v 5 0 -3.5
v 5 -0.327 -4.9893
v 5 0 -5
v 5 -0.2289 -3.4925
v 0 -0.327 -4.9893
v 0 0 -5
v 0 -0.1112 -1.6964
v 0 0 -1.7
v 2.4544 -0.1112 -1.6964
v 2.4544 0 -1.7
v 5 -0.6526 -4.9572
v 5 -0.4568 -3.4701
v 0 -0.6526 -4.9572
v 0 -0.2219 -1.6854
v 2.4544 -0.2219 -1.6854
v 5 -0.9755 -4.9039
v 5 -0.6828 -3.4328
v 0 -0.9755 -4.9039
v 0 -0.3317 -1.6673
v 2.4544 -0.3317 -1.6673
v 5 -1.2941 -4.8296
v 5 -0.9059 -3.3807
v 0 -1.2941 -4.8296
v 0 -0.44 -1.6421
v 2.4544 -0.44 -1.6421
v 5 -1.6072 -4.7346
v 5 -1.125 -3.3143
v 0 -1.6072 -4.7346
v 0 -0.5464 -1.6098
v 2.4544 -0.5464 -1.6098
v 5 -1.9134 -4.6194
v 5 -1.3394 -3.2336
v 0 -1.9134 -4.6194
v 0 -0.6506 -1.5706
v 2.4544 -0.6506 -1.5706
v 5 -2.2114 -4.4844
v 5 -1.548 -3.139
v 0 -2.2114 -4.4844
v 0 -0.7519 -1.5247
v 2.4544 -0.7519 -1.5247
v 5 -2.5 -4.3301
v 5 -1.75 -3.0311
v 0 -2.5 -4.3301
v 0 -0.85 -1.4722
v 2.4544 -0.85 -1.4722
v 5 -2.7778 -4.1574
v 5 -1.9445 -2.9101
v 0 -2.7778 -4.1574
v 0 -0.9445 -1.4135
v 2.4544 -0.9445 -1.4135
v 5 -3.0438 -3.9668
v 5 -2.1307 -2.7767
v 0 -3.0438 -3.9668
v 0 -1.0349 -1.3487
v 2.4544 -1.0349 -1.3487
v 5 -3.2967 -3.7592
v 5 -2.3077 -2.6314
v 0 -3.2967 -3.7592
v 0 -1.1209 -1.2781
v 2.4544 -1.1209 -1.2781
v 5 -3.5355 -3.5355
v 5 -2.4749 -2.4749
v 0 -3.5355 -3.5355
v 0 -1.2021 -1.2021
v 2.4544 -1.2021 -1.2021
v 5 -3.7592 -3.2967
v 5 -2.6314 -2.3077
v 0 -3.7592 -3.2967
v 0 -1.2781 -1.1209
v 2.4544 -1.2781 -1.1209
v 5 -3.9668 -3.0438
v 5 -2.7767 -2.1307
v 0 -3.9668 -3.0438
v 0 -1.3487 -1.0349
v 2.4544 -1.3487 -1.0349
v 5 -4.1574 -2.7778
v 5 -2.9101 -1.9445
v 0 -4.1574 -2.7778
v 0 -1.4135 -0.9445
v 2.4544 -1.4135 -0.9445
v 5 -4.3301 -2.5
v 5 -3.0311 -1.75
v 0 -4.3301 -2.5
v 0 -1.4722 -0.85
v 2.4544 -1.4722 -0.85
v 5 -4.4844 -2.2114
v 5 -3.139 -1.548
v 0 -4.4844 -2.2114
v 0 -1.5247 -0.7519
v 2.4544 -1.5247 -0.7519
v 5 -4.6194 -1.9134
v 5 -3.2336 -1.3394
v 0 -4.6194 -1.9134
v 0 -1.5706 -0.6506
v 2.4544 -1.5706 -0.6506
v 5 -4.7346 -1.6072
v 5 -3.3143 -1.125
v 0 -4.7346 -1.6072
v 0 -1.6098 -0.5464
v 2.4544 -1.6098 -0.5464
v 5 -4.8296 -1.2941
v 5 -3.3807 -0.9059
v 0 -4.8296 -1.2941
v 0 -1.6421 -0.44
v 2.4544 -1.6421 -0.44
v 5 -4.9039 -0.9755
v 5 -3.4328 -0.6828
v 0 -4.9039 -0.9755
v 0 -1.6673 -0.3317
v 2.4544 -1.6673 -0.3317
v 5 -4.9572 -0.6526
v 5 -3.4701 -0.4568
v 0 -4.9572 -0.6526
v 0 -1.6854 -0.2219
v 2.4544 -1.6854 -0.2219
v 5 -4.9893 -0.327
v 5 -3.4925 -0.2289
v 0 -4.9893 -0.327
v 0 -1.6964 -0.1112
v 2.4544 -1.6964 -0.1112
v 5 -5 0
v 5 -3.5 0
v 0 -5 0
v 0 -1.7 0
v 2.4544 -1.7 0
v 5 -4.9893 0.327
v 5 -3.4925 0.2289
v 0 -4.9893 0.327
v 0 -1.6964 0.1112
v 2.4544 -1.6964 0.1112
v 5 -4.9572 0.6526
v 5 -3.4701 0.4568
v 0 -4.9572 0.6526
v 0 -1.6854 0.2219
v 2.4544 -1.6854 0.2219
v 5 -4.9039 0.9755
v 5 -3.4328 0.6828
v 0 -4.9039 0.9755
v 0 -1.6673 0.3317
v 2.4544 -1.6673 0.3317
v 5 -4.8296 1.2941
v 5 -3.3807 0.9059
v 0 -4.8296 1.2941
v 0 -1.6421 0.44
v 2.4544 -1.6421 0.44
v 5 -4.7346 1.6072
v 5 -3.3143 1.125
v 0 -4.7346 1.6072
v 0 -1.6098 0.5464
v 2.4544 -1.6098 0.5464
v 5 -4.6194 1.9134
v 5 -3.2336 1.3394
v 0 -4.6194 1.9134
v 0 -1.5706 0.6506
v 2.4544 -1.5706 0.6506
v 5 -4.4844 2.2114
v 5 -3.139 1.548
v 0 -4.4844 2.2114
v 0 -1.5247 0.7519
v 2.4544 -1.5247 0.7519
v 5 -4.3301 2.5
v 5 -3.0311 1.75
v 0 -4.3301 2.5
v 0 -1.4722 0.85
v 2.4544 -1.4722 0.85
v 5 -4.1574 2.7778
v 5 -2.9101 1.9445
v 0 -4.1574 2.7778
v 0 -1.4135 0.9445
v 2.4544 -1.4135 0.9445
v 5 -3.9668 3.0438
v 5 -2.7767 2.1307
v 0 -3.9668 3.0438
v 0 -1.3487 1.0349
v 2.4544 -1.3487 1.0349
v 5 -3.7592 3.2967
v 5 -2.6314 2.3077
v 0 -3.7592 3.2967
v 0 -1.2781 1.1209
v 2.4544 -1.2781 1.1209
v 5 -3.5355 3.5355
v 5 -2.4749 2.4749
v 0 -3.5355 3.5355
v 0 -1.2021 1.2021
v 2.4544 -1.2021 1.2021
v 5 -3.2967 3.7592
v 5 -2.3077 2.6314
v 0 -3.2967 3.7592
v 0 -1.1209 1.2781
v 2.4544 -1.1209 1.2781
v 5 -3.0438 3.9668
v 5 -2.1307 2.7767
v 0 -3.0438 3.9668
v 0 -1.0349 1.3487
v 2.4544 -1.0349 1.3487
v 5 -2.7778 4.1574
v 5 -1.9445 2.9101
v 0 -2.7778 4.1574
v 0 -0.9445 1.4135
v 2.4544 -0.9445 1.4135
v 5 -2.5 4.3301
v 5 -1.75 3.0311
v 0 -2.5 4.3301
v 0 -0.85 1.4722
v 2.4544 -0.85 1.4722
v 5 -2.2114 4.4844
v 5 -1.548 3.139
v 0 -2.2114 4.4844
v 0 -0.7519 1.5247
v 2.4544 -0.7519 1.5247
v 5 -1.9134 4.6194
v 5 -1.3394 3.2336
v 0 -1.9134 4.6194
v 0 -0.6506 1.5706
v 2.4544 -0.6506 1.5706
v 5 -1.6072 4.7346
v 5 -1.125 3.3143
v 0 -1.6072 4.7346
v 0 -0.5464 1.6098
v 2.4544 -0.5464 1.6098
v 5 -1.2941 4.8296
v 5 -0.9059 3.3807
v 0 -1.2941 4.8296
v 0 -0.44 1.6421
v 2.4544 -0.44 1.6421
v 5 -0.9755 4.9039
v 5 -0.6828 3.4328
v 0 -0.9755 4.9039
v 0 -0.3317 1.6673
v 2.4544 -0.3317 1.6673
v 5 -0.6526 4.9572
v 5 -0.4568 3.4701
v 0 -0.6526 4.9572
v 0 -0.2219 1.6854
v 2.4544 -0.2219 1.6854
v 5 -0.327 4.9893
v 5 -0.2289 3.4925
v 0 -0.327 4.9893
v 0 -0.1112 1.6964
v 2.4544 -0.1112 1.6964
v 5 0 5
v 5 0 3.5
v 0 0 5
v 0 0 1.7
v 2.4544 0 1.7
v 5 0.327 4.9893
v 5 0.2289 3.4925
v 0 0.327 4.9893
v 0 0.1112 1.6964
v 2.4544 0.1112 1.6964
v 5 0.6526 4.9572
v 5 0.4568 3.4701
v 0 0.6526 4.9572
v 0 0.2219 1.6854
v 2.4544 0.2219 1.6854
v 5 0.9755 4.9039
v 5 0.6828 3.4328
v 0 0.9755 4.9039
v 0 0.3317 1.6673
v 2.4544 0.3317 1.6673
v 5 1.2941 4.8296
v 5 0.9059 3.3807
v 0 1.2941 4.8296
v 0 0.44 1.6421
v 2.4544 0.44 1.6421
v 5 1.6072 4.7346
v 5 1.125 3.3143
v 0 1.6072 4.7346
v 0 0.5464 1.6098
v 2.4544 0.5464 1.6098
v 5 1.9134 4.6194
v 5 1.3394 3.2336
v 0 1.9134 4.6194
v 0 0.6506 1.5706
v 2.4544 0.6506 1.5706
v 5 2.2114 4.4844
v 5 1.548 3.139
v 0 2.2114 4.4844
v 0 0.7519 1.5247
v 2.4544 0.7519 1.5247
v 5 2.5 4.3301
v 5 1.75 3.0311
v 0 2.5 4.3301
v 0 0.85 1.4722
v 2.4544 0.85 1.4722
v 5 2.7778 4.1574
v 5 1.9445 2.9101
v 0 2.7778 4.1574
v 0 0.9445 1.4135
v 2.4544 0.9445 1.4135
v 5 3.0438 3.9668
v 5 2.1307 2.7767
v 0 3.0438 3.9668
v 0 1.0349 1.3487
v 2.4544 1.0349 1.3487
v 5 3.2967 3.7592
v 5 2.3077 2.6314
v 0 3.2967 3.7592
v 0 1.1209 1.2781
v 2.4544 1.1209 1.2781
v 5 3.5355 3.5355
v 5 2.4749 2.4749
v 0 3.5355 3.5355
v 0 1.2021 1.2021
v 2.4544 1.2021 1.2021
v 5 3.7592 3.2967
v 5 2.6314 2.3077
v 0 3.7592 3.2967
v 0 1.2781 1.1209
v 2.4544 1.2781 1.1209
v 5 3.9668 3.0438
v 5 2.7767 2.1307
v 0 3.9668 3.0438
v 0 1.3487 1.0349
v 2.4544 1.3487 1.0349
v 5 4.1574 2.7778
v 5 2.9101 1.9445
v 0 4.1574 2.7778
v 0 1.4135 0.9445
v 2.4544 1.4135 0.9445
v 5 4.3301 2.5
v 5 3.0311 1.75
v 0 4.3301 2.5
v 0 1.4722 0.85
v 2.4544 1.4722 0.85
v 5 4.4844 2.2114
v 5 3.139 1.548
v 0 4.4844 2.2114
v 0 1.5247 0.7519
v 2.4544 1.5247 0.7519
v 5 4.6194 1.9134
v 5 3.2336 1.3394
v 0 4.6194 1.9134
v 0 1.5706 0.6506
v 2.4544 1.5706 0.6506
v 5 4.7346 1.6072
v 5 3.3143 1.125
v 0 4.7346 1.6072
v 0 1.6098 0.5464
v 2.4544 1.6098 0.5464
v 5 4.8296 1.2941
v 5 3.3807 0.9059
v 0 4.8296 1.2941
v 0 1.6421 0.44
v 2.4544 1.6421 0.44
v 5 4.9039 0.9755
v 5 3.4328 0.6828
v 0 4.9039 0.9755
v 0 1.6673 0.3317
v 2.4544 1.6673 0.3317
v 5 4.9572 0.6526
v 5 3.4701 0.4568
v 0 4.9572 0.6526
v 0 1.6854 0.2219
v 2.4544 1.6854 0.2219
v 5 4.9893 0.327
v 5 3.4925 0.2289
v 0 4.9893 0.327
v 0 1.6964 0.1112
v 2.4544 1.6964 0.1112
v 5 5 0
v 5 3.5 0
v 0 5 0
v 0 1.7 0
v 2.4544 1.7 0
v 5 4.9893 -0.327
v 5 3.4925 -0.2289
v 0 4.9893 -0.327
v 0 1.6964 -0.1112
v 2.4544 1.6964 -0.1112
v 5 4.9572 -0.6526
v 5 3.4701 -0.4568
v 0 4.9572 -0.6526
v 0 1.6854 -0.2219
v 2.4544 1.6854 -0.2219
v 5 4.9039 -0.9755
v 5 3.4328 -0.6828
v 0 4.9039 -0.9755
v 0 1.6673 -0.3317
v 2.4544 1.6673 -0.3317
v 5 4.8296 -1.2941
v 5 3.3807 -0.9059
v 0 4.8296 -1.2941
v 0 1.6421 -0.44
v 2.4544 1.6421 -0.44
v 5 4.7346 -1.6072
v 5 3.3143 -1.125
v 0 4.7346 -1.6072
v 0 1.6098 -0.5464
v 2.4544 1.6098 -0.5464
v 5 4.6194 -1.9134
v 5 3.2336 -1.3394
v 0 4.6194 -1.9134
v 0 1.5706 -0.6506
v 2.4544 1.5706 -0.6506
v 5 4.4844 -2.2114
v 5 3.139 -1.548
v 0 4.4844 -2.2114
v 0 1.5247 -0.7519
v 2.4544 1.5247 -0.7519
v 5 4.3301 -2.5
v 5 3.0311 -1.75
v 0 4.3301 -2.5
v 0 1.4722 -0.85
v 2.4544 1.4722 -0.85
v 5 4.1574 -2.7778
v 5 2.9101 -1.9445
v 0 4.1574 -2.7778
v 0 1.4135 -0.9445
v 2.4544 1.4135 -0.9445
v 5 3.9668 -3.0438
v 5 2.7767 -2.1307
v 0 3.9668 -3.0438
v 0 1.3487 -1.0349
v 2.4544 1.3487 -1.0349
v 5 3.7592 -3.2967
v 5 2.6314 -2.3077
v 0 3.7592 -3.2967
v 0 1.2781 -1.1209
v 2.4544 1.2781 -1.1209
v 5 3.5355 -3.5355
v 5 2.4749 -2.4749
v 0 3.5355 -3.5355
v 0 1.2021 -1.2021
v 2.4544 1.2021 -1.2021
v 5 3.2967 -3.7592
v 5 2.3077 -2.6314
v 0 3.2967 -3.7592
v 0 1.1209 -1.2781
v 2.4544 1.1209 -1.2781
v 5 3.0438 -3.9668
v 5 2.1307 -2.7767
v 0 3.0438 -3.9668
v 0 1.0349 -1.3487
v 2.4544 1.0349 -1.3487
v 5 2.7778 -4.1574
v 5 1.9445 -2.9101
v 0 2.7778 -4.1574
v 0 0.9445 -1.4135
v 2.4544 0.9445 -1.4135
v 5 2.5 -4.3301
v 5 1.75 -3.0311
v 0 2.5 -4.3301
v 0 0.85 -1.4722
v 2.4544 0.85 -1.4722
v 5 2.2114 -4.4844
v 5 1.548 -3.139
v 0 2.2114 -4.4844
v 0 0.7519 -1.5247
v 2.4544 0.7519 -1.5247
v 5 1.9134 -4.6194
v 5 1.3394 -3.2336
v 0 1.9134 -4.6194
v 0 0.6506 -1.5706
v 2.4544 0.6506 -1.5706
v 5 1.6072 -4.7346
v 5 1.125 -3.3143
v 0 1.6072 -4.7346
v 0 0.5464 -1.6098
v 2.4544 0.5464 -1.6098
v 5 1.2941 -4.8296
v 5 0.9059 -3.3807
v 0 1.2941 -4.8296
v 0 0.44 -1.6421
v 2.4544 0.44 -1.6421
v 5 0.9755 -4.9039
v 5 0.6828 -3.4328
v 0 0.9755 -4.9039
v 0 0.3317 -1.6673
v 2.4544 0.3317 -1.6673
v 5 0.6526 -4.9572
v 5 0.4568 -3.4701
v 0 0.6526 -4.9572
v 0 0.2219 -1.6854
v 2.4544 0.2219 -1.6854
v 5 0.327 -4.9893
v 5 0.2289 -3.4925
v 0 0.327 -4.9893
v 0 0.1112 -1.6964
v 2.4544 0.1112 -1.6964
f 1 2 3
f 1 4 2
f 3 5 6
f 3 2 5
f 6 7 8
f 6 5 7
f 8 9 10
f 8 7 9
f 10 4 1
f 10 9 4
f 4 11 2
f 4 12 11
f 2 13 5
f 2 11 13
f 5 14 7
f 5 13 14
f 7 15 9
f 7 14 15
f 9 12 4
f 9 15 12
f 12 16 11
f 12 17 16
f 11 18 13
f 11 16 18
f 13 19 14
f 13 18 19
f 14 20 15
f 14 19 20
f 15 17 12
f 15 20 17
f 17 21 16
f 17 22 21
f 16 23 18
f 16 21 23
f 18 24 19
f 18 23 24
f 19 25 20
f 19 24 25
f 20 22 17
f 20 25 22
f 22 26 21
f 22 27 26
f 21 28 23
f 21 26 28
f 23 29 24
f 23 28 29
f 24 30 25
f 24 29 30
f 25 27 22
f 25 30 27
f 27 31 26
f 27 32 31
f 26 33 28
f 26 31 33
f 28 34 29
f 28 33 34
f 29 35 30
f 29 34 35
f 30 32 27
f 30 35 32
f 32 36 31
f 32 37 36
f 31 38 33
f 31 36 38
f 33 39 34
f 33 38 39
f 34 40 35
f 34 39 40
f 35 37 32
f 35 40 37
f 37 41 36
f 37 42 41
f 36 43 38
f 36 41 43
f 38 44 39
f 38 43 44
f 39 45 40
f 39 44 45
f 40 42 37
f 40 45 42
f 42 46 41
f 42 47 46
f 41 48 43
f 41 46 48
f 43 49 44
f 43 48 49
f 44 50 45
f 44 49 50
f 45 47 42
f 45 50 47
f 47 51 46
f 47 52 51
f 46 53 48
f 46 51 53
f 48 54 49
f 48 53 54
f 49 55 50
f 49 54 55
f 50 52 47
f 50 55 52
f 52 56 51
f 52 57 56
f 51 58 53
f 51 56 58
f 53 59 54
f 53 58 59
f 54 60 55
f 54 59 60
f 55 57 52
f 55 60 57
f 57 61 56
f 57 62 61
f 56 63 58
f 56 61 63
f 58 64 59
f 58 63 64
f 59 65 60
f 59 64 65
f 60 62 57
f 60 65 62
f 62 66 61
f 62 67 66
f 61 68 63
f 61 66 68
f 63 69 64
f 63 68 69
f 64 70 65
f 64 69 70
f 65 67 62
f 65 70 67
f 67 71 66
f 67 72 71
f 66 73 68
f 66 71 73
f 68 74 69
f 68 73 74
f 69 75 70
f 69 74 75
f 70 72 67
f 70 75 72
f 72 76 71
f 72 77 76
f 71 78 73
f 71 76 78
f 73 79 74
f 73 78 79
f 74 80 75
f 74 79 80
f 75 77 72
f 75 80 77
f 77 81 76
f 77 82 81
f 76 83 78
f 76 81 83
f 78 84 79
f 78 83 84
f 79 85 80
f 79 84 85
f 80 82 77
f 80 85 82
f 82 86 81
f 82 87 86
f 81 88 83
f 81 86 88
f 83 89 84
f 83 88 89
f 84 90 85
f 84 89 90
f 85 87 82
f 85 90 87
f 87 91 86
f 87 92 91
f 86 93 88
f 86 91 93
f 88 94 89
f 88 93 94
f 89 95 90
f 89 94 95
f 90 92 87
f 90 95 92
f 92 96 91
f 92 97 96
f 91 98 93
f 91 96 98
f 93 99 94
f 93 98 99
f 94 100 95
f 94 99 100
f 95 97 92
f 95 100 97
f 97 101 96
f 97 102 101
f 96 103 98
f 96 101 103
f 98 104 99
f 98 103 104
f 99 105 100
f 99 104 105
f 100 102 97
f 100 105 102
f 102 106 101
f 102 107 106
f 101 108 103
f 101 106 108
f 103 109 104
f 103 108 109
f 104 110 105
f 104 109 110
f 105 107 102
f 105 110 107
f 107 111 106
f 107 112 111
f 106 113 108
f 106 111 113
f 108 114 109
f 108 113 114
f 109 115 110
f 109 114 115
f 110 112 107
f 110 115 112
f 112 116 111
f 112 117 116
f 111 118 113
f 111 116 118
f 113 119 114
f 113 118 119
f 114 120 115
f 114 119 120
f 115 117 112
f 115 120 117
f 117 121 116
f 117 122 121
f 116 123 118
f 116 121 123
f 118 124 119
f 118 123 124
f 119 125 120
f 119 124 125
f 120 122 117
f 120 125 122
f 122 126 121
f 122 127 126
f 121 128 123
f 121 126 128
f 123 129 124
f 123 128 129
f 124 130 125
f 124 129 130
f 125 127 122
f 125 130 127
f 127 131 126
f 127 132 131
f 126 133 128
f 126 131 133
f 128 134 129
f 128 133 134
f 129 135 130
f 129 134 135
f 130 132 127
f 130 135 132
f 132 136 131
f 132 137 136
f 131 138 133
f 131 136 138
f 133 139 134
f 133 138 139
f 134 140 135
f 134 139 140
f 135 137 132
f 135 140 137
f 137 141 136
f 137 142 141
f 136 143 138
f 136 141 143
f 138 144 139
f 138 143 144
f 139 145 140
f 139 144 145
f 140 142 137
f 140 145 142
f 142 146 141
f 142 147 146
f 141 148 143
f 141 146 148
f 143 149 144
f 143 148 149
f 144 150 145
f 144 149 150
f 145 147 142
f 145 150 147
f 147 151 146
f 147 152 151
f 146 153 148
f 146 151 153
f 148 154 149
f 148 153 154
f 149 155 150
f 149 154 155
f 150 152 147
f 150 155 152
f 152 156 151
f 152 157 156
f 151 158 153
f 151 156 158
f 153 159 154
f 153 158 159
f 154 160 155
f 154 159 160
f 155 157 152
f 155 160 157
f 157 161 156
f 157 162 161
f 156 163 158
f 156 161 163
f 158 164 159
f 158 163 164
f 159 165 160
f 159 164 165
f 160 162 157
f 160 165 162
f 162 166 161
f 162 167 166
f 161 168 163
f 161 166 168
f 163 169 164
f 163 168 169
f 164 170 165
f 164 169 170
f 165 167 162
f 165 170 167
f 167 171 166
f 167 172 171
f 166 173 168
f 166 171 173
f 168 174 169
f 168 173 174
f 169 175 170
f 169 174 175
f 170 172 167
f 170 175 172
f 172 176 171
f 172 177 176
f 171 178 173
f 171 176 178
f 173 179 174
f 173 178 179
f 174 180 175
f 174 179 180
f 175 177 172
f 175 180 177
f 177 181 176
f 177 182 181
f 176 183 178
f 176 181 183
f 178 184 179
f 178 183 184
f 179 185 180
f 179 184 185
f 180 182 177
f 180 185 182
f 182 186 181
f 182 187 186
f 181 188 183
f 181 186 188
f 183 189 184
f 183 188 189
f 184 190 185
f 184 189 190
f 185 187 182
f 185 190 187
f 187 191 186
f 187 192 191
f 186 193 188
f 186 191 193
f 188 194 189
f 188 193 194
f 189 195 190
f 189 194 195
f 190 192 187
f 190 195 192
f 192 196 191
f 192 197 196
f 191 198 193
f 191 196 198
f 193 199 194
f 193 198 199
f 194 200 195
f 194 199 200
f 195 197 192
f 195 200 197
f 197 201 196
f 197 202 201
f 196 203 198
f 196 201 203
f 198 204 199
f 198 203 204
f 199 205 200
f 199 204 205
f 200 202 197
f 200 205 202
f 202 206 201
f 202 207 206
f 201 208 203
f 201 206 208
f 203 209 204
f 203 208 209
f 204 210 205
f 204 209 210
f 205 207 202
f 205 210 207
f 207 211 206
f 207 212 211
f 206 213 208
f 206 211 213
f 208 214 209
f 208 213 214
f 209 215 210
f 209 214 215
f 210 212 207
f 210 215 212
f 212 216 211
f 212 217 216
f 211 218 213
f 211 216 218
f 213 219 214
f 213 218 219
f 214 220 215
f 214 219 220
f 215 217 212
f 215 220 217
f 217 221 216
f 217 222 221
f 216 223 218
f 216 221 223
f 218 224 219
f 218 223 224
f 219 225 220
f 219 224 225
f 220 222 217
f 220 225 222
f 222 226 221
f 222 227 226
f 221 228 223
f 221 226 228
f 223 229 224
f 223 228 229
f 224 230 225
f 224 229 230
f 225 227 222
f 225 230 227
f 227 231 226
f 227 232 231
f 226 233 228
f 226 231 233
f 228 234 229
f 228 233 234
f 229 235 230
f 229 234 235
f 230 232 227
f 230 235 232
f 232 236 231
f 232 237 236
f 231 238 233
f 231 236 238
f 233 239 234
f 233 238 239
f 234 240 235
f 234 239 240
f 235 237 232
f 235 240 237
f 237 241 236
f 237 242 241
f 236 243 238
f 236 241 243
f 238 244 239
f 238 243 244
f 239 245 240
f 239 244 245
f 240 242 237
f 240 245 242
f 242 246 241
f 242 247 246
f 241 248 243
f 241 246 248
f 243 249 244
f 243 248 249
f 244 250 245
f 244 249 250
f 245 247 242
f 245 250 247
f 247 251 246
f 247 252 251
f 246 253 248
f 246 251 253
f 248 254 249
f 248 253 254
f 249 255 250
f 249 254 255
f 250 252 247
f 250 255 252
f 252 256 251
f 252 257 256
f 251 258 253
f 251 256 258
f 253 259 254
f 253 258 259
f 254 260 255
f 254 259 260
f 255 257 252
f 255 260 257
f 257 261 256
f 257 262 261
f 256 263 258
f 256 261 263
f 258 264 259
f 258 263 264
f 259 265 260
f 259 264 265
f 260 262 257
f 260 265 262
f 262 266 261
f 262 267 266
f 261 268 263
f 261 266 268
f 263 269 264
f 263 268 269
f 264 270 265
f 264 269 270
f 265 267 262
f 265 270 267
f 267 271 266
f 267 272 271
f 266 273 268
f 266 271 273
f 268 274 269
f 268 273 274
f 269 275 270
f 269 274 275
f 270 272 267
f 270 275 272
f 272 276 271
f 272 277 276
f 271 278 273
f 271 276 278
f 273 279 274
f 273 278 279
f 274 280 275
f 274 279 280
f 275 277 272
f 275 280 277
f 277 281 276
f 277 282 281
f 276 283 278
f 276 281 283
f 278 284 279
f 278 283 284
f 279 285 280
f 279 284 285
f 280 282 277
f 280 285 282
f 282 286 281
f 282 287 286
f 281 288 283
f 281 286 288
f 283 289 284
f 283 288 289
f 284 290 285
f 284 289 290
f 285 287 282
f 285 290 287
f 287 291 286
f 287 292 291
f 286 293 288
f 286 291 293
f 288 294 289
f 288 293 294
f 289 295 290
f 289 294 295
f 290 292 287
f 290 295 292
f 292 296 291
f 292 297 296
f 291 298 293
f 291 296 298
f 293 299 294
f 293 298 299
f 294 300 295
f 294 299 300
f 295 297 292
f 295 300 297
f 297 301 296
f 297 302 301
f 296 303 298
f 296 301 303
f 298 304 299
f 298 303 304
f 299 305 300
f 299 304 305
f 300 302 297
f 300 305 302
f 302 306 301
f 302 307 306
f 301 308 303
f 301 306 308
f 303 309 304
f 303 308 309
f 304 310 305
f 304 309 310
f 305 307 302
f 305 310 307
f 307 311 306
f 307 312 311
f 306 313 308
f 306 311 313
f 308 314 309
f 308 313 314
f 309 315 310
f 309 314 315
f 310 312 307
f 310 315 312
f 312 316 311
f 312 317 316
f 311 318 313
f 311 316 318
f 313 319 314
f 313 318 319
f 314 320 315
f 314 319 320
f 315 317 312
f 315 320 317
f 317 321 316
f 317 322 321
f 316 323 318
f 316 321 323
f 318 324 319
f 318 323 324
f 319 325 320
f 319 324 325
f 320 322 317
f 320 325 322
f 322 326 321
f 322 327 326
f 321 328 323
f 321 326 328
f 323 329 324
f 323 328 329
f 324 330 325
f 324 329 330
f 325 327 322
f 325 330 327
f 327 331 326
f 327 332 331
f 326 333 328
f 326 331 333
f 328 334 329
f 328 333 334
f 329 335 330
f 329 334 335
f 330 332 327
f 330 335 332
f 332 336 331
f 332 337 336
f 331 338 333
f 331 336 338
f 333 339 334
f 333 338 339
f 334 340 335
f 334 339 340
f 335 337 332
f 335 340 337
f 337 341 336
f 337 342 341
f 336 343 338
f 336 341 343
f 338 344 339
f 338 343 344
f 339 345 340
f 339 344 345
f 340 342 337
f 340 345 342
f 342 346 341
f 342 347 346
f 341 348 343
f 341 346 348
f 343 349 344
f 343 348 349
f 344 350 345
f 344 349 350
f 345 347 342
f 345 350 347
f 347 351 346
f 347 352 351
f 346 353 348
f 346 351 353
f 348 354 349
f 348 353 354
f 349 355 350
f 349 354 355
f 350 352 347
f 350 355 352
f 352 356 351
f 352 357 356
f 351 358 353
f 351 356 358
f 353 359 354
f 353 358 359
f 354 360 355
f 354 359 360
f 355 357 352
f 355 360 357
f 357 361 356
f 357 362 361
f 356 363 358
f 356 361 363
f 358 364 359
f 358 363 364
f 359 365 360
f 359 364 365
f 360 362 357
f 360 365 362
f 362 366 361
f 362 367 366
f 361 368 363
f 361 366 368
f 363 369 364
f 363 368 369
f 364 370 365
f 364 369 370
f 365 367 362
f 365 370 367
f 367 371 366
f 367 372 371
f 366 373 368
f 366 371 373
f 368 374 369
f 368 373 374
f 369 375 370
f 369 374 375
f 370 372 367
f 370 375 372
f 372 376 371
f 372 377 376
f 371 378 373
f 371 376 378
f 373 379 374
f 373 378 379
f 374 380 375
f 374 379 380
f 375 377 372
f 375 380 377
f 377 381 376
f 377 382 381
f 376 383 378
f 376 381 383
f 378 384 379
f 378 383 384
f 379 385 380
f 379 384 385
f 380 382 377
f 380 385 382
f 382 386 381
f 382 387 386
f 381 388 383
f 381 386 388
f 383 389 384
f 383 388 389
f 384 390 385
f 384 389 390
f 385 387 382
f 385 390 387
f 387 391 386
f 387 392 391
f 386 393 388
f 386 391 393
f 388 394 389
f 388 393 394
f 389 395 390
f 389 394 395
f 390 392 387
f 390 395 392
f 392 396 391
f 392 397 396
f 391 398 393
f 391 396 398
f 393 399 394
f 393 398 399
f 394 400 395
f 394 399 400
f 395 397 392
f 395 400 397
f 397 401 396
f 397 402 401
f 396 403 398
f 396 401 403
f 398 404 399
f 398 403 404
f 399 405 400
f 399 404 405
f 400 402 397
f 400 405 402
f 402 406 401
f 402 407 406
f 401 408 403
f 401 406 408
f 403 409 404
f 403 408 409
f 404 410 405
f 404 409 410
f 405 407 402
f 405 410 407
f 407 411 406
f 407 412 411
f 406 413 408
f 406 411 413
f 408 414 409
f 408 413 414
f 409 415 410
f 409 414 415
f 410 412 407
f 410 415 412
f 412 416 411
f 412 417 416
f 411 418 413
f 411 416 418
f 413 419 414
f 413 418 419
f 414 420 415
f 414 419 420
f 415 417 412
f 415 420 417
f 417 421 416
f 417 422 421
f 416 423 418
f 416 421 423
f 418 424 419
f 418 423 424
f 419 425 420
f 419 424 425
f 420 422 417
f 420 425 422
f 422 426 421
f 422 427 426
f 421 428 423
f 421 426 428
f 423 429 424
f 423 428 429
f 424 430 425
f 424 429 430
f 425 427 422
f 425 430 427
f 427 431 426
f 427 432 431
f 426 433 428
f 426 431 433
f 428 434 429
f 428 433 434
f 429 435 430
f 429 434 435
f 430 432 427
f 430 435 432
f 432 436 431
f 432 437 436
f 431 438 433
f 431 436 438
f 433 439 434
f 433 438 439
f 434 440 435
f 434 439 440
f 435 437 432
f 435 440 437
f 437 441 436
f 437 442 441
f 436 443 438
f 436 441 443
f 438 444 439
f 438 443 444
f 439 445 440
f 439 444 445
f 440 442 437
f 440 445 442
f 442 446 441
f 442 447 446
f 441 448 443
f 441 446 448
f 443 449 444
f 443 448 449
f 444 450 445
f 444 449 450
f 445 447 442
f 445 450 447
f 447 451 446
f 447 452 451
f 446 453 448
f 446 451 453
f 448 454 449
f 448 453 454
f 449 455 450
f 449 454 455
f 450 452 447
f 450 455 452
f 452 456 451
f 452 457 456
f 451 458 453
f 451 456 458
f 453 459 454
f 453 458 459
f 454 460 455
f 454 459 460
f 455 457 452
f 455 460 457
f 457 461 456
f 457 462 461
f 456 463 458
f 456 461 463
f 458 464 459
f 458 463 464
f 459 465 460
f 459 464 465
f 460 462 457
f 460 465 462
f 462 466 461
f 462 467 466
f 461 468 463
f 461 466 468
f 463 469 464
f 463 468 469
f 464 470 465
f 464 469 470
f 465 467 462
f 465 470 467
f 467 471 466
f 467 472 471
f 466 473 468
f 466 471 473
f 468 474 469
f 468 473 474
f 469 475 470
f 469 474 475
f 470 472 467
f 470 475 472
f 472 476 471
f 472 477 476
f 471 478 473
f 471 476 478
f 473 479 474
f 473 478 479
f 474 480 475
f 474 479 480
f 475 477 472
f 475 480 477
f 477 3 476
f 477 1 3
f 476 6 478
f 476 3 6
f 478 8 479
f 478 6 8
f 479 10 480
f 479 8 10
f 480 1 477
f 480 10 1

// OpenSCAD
/**********************************************************************************************************************
 **
 ** parts/vitamins/magnet_ring_10x5.scad
 **
 ** This file renders a beveled ring magnet of the dimensions specified by the file name
 **
 **********************************************************************************************************************/

// for dimensions see https://www.mtsmagnete.de/magnetsysteme/mit-bohrung-und-senkung/neodym-scheibenmagnet-mit-bohrung-und-senkung-10x5mm-3-4mm-bohrung-n40/a-3805/

D = 10;      // outer diameter
H = 5;       // height
d1 = 3.4;    // bore
d2 = 7;      // bevel diameter

// calculate bevel depth
bd = sin(45) * (d2 - d1);

$fn = 96;
rotate([0, 90, 0]) 
	rotate_extrude()
		rotate([0, 0, 90])
		  	polygon(points = [
				[ 0, d1/2],
				[ 0, D/2],
				[ H, D/2],
				[ H, d2/2],
				[ H - bd, d1/2]
			]);
